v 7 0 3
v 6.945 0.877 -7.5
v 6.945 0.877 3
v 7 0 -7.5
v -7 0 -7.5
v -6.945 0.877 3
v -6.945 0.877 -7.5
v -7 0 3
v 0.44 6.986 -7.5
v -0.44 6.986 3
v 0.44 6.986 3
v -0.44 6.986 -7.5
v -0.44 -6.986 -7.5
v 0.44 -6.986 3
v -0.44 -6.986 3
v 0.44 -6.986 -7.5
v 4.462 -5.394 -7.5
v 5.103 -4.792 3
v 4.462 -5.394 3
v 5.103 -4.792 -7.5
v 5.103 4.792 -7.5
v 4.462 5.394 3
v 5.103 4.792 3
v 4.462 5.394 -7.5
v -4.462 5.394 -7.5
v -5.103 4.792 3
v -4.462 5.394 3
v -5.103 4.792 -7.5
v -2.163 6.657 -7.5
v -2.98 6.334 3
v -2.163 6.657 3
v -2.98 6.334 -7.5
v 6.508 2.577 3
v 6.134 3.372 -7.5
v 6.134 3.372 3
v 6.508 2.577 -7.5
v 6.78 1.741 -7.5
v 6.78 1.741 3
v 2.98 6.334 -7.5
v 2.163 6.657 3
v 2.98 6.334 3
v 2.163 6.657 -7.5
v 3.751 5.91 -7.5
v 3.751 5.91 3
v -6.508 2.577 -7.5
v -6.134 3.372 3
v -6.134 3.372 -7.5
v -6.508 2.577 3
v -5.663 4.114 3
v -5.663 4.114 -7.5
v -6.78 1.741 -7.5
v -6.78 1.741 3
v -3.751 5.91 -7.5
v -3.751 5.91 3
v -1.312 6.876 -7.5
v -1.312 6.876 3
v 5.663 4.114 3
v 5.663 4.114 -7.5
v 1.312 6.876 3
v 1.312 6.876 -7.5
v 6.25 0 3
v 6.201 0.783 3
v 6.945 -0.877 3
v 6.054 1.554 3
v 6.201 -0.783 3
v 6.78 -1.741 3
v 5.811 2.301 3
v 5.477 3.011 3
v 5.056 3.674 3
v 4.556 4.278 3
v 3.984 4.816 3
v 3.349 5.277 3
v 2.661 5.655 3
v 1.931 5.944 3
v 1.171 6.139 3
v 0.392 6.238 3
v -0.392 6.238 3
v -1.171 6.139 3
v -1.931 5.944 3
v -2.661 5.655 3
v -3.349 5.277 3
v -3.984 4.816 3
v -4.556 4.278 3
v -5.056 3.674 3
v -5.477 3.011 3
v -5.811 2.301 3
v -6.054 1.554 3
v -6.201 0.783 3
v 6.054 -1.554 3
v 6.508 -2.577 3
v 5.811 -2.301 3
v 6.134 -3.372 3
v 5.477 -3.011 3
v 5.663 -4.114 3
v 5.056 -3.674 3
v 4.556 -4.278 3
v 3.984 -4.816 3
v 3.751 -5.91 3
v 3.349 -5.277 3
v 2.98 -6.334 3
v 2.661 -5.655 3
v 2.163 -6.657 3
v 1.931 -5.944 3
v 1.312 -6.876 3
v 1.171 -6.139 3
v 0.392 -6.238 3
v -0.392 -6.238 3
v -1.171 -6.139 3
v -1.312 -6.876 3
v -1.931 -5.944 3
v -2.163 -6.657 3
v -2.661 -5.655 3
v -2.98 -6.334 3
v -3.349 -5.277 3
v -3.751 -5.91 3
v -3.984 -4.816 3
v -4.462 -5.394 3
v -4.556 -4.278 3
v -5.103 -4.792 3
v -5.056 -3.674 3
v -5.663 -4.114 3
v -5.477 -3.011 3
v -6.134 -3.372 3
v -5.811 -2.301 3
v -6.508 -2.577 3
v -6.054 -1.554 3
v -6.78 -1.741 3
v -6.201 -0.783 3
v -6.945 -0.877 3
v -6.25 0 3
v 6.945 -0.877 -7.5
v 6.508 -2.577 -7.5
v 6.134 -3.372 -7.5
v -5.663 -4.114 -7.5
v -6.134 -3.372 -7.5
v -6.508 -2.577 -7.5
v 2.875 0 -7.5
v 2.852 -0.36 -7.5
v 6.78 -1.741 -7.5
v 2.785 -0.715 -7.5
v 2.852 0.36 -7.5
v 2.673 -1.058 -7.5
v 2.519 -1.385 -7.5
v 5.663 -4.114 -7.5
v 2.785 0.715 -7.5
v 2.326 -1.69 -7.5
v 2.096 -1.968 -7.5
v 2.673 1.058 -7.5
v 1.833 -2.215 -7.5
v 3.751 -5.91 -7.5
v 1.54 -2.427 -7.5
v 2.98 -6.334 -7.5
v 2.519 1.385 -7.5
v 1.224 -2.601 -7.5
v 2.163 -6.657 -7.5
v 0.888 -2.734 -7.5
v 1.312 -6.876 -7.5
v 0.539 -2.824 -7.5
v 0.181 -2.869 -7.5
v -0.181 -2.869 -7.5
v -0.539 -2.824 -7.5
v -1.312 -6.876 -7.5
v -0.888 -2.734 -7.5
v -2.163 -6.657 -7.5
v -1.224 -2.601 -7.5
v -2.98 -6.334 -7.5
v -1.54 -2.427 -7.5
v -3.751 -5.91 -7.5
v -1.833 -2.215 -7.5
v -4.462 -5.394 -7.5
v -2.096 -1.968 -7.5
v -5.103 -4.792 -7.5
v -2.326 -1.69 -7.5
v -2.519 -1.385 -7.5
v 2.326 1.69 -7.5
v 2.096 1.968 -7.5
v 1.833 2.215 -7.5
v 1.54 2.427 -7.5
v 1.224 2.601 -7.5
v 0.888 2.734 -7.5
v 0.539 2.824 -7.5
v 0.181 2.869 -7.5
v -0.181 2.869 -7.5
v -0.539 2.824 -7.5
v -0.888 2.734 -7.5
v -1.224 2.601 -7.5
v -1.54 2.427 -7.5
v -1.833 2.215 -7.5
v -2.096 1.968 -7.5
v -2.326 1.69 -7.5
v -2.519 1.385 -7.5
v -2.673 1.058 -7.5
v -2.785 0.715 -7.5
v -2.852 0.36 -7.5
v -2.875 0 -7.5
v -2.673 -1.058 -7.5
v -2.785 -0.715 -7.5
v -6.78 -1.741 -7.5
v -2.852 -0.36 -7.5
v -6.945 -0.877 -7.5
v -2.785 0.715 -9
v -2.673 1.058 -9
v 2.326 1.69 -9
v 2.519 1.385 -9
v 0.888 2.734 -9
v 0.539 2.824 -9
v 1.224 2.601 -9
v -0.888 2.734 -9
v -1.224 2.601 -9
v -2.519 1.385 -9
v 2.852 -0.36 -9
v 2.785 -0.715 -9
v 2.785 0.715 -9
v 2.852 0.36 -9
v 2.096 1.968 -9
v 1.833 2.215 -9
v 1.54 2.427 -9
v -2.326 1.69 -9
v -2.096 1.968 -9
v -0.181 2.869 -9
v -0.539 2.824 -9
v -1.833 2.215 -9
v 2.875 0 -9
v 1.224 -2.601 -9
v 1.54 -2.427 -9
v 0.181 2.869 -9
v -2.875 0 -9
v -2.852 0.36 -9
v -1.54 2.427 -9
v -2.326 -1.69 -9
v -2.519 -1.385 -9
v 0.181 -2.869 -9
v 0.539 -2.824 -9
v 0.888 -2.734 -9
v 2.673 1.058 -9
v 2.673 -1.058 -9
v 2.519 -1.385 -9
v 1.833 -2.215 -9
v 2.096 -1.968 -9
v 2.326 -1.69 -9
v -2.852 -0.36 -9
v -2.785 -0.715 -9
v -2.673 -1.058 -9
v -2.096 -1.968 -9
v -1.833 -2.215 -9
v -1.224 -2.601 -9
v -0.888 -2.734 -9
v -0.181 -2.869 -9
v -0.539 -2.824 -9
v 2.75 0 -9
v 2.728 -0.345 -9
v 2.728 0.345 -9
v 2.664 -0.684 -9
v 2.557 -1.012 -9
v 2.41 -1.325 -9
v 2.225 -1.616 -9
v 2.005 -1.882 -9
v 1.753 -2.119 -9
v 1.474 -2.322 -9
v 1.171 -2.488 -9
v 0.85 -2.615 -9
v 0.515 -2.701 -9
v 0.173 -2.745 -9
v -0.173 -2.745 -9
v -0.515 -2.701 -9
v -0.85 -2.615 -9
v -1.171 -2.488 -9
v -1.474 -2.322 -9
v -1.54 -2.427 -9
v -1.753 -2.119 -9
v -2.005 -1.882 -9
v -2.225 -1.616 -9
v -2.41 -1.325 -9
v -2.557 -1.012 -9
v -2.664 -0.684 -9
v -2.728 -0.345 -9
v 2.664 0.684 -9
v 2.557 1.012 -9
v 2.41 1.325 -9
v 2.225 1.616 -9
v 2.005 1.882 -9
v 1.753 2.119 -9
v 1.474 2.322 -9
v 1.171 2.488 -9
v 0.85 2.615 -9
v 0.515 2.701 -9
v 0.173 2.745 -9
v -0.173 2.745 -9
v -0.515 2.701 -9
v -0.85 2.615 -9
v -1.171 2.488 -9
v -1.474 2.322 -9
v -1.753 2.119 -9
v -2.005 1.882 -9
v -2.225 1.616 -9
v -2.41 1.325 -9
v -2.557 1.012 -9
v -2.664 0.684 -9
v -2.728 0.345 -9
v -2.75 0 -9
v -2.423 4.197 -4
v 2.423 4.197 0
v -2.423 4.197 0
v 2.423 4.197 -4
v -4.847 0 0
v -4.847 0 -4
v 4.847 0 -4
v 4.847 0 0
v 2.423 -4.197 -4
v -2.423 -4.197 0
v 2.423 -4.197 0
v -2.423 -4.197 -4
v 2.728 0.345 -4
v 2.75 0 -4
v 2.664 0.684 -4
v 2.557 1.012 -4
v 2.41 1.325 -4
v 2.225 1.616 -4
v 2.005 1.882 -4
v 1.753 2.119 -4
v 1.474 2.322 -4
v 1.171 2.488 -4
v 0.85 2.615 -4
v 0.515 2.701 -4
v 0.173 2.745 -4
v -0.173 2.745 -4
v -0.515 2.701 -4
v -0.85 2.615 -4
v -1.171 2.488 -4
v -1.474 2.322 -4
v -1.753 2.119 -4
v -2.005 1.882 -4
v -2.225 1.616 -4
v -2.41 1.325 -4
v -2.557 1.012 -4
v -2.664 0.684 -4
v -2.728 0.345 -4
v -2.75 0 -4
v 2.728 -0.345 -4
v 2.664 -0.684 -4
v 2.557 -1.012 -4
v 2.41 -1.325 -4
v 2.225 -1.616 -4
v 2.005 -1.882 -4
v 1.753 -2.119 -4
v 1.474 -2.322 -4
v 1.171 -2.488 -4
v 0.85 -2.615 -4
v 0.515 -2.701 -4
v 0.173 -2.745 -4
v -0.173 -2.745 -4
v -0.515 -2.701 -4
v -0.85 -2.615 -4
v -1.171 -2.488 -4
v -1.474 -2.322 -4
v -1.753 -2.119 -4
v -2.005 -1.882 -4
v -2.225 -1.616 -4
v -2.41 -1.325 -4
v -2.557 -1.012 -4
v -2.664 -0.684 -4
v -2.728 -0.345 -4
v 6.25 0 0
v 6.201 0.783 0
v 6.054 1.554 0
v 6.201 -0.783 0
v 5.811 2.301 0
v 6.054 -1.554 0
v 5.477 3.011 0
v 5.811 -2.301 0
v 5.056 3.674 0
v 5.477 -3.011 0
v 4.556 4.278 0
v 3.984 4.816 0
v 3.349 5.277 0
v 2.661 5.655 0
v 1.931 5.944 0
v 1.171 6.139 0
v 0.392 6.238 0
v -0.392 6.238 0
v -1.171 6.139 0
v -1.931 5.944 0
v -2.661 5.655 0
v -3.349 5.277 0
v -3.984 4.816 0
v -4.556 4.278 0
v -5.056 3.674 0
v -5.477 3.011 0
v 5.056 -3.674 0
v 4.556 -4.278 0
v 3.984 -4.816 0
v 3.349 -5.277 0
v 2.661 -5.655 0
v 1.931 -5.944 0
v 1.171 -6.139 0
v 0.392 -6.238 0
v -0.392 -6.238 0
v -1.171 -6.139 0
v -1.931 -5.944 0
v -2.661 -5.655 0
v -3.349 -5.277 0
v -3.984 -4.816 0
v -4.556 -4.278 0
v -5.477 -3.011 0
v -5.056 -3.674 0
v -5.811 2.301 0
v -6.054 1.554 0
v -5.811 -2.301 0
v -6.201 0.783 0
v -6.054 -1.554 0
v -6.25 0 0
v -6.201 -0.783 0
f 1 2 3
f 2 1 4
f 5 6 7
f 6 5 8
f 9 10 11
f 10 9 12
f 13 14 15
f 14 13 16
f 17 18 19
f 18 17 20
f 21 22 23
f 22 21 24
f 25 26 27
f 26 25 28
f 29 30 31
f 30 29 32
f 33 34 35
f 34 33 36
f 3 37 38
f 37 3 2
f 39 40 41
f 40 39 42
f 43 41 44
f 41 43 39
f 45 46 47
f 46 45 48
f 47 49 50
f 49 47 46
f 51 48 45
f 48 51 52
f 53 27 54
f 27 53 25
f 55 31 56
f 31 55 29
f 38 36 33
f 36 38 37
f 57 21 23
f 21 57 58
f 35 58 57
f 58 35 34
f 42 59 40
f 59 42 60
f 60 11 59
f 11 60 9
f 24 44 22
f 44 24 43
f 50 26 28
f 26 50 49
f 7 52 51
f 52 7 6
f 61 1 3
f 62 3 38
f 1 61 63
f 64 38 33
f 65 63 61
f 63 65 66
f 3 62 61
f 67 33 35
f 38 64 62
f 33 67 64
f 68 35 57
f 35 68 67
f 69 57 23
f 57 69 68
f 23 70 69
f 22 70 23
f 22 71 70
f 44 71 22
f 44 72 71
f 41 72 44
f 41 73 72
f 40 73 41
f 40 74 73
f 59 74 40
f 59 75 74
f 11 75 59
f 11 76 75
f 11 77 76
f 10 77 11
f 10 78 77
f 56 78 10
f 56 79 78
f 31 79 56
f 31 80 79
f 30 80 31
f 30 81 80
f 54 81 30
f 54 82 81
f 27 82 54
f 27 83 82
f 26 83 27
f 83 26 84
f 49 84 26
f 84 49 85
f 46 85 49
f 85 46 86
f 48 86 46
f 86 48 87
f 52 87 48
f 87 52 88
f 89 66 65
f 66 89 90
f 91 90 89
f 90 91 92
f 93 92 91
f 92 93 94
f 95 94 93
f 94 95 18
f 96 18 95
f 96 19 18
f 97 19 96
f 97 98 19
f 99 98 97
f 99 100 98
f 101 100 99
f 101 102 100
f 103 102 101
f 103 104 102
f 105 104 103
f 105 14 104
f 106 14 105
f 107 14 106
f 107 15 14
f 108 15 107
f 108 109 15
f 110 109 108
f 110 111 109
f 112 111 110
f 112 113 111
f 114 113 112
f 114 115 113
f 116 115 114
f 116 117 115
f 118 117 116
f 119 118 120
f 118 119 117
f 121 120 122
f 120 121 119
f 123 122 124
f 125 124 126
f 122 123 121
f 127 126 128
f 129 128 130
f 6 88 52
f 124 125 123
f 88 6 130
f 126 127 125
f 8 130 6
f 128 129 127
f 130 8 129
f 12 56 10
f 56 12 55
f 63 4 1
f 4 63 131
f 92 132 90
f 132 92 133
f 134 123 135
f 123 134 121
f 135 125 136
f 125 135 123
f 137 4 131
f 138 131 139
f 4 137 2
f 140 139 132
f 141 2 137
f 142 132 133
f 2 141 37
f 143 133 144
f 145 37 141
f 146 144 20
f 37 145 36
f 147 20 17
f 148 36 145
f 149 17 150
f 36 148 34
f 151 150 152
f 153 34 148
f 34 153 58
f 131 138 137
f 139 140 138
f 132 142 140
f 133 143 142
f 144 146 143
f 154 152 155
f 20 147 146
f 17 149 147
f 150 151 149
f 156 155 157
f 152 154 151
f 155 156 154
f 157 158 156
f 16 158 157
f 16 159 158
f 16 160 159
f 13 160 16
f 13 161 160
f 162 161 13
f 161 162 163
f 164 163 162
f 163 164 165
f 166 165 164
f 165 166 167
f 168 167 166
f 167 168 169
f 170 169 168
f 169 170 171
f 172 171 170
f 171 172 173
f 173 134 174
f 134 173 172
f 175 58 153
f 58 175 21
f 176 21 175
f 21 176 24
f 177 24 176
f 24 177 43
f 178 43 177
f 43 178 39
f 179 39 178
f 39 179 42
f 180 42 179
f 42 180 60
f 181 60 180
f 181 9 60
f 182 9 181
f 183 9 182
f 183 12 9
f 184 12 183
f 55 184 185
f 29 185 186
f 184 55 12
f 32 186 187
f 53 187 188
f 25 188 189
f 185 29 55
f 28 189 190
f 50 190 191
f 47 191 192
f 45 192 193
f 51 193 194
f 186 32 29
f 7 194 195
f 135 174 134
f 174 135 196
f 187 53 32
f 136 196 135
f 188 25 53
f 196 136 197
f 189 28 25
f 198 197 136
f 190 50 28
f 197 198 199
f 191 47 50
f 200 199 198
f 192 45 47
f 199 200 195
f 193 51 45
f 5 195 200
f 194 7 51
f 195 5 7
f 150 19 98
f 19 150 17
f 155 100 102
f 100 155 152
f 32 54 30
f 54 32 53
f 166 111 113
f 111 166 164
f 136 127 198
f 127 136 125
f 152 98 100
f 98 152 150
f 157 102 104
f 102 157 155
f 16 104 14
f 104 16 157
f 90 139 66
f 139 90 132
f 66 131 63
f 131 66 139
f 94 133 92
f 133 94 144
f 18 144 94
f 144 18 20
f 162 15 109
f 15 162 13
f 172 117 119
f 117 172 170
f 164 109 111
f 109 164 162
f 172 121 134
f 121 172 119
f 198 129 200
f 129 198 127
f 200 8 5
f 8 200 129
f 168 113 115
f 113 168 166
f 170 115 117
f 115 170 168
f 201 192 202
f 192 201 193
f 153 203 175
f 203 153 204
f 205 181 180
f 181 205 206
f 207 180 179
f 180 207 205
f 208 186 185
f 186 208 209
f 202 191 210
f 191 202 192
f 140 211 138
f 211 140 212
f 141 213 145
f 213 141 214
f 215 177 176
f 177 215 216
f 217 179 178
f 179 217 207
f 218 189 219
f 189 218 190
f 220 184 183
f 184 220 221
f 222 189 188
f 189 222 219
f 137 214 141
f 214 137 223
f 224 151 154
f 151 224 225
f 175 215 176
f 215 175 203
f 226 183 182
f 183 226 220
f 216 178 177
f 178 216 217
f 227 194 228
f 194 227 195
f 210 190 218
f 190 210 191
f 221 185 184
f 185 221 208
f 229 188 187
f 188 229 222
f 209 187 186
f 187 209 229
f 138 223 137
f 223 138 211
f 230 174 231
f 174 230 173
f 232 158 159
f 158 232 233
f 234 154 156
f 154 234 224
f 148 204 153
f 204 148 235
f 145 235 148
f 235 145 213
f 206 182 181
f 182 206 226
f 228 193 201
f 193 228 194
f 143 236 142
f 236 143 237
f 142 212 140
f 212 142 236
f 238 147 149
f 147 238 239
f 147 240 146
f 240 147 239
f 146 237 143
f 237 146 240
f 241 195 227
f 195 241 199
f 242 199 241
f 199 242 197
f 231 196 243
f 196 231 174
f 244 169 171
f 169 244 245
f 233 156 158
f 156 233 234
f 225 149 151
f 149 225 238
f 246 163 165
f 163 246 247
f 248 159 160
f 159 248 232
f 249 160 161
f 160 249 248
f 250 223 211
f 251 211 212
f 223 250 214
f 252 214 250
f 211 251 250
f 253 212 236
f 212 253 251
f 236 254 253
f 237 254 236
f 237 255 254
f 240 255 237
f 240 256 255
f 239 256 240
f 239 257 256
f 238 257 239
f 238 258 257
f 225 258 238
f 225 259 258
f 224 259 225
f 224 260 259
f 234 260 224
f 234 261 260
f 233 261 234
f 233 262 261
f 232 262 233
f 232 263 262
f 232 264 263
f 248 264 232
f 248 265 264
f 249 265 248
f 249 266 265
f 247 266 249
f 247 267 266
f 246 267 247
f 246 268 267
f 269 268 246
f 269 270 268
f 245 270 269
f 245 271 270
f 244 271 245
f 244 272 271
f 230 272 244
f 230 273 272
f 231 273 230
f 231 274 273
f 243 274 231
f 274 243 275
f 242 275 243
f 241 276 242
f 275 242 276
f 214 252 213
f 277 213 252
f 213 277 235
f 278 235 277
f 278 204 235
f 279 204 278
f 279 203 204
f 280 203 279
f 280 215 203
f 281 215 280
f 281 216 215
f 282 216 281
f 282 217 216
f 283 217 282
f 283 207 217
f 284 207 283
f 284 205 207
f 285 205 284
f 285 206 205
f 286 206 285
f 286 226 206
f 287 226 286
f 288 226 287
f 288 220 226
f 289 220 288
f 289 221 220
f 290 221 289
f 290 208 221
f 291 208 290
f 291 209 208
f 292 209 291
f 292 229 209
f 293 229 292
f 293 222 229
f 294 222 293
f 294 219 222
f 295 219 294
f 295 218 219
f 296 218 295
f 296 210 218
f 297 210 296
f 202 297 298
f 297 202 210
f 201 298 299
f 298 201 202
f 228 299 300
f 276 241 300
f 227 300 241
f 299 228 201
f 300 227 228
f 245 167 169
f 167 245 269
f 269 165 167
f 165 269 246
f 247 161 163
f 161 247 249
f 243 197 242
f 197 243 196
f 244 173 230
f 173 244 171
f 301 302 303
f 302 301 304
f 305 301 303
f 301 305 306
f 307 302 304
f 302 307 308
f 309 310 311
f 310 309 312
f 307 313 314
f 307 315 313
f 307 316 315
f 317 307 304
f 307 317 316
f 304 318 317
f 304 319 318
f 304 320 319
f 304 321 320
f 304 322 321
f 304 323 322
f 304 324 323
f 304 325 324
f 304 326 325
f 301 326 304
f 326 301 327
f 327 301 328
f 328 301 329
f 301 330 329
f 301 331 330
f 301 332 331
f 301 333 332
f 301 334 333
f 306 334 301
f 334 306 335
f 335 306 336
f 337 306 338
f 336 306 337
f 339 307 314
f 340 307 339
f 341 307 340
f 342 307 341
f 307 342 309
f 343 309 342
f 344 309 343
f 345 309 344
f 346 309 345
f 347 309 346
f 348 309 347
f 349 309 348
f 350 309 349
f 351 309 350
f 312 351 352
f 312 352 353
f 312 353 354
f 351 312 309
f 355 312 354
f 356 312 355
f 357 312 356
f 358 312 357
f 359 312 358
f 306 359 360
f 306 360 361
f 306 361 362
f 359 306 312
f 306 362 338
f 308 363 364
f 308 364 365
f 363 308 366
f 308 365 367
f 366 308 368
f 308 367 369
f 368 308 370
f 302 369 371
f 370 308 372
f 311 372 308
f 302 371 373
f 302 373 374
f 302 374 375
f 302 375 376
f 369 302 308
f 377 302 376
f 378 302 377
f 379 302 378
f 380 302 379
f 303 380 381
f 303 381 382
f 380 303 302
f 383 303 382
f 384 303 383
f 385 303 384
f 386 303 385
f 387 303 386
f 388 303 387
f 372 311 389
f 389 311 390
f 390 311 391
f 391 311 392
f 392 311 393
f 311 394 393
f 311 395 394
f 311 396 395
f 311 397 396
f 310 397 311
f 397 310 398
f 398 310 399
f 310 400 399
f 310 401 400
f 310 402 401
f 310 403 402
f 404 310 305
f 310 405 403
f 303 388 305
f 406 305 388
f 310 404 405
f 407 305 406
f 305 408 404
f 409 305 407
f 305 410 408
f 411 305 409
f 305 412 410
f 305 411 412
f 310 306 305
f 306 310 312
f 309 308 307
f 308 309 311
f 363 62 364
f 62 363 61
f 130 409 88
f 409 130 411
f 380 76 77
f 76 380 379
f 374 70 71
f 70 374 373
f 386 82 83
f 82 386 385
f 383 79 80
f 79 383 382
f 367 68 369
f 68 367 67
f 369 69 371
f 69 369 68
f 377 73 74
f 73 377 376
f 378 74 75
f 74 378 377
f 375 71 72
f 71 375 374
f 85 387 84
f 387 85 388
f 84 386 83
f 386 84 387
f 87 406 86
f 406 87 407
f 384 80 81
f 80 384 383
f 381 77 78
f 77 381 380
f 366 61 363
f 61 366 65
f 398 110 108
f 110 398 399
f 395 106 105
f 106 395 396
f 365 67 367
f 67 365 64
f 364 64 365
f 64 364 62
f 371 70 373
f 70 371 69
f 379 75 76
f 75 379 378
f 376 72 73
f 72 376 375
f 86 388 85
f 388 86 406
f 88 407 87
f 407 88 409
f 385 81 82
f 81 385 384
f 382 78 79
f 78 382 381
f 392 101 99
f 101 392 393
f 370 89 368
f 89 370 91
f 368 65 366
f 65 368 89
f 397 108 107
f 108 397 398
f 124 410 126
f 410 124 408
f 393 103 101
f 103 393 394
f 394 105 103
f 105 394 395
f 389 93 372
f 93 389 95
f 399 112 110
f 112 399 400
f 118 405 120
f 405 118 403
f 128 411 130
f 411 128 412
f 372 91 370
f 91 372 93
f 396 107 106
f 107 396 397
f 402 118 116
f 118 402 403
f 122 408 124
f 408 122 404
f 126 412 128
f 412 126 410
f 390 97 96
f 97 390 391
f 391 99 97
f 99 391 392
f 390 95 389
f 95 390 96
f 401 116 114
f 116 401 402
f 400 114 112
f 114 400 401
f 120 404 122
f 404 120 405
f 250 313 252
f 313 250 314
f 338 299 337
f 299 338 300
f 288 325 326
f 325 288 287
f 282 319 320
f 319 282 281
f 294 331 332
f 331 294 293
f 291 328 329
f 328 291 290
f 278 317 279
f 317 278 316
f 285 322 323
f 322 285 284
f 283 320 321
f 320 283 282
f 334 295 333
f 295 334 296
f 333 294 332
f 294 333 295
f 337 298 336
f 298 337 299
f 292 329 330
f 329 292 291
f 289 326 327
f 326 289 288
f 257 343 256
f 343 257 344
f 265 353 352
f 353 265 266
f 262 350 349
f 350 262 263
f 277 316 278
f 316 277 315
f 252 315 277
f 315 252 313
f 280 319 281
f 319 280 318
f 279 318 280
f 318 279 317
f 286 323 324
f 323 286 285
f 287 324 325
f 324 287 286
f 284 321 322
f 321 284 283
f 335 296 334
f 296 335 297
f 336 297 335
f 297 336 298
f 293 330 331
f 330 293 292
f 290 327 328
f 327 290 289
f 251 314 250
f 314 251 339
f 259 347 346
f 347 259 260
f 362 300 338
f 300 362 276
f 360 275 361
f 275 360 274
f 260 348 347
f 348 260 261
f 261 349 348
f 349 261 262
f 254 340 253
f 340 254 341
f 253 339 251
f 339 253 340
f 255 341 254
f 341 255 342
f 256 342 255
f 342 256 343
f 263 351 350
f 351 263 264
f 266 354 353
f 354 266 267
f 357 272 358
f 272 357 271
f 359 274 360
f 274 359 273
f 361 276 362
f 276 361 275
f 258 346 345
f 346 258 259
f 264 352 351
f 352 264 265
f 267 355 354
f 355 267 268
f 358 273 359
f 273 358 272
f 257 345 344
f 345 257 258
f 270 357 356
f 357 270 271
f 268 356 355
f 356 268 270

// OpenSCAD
$fn = 50;

difference() {
	union() {
		translate(v = [0, 0, -7.5]) {
			cylinder(h = 10.5, r = 7.0);
		}
		#translate(v = [0, 0, -9.0]) {
			cylinder(h = 9, r = 2.875);
		}
	}
	union() {
		translate(v = [0, 0, 0]) {
			rotate(a = [0, 0, 0]) {
				difference() {
					union() {
						translate(v = [0, 0, -4]) {
							linear_extrude(height = 4) {
								polygon(points = [[4.8468, 0.0], [2.4234000000000004, 4.197451927062417], [-2.423399999999999, 4.197451927062417], [-4.8468, 5.935618106107392e-16], [-2.423400000000002, -4.197451927062416], [2.423399999999997, -4.197451927062419]]);
							}
						}
					}
					union();
				}
			}
		}
		#cylinder(h = 3, r = 6.25);
		#translate(v = [0, 0, -100.0]) {
			cylinder(h = 200, r = 2.75);
		}
	}
}
